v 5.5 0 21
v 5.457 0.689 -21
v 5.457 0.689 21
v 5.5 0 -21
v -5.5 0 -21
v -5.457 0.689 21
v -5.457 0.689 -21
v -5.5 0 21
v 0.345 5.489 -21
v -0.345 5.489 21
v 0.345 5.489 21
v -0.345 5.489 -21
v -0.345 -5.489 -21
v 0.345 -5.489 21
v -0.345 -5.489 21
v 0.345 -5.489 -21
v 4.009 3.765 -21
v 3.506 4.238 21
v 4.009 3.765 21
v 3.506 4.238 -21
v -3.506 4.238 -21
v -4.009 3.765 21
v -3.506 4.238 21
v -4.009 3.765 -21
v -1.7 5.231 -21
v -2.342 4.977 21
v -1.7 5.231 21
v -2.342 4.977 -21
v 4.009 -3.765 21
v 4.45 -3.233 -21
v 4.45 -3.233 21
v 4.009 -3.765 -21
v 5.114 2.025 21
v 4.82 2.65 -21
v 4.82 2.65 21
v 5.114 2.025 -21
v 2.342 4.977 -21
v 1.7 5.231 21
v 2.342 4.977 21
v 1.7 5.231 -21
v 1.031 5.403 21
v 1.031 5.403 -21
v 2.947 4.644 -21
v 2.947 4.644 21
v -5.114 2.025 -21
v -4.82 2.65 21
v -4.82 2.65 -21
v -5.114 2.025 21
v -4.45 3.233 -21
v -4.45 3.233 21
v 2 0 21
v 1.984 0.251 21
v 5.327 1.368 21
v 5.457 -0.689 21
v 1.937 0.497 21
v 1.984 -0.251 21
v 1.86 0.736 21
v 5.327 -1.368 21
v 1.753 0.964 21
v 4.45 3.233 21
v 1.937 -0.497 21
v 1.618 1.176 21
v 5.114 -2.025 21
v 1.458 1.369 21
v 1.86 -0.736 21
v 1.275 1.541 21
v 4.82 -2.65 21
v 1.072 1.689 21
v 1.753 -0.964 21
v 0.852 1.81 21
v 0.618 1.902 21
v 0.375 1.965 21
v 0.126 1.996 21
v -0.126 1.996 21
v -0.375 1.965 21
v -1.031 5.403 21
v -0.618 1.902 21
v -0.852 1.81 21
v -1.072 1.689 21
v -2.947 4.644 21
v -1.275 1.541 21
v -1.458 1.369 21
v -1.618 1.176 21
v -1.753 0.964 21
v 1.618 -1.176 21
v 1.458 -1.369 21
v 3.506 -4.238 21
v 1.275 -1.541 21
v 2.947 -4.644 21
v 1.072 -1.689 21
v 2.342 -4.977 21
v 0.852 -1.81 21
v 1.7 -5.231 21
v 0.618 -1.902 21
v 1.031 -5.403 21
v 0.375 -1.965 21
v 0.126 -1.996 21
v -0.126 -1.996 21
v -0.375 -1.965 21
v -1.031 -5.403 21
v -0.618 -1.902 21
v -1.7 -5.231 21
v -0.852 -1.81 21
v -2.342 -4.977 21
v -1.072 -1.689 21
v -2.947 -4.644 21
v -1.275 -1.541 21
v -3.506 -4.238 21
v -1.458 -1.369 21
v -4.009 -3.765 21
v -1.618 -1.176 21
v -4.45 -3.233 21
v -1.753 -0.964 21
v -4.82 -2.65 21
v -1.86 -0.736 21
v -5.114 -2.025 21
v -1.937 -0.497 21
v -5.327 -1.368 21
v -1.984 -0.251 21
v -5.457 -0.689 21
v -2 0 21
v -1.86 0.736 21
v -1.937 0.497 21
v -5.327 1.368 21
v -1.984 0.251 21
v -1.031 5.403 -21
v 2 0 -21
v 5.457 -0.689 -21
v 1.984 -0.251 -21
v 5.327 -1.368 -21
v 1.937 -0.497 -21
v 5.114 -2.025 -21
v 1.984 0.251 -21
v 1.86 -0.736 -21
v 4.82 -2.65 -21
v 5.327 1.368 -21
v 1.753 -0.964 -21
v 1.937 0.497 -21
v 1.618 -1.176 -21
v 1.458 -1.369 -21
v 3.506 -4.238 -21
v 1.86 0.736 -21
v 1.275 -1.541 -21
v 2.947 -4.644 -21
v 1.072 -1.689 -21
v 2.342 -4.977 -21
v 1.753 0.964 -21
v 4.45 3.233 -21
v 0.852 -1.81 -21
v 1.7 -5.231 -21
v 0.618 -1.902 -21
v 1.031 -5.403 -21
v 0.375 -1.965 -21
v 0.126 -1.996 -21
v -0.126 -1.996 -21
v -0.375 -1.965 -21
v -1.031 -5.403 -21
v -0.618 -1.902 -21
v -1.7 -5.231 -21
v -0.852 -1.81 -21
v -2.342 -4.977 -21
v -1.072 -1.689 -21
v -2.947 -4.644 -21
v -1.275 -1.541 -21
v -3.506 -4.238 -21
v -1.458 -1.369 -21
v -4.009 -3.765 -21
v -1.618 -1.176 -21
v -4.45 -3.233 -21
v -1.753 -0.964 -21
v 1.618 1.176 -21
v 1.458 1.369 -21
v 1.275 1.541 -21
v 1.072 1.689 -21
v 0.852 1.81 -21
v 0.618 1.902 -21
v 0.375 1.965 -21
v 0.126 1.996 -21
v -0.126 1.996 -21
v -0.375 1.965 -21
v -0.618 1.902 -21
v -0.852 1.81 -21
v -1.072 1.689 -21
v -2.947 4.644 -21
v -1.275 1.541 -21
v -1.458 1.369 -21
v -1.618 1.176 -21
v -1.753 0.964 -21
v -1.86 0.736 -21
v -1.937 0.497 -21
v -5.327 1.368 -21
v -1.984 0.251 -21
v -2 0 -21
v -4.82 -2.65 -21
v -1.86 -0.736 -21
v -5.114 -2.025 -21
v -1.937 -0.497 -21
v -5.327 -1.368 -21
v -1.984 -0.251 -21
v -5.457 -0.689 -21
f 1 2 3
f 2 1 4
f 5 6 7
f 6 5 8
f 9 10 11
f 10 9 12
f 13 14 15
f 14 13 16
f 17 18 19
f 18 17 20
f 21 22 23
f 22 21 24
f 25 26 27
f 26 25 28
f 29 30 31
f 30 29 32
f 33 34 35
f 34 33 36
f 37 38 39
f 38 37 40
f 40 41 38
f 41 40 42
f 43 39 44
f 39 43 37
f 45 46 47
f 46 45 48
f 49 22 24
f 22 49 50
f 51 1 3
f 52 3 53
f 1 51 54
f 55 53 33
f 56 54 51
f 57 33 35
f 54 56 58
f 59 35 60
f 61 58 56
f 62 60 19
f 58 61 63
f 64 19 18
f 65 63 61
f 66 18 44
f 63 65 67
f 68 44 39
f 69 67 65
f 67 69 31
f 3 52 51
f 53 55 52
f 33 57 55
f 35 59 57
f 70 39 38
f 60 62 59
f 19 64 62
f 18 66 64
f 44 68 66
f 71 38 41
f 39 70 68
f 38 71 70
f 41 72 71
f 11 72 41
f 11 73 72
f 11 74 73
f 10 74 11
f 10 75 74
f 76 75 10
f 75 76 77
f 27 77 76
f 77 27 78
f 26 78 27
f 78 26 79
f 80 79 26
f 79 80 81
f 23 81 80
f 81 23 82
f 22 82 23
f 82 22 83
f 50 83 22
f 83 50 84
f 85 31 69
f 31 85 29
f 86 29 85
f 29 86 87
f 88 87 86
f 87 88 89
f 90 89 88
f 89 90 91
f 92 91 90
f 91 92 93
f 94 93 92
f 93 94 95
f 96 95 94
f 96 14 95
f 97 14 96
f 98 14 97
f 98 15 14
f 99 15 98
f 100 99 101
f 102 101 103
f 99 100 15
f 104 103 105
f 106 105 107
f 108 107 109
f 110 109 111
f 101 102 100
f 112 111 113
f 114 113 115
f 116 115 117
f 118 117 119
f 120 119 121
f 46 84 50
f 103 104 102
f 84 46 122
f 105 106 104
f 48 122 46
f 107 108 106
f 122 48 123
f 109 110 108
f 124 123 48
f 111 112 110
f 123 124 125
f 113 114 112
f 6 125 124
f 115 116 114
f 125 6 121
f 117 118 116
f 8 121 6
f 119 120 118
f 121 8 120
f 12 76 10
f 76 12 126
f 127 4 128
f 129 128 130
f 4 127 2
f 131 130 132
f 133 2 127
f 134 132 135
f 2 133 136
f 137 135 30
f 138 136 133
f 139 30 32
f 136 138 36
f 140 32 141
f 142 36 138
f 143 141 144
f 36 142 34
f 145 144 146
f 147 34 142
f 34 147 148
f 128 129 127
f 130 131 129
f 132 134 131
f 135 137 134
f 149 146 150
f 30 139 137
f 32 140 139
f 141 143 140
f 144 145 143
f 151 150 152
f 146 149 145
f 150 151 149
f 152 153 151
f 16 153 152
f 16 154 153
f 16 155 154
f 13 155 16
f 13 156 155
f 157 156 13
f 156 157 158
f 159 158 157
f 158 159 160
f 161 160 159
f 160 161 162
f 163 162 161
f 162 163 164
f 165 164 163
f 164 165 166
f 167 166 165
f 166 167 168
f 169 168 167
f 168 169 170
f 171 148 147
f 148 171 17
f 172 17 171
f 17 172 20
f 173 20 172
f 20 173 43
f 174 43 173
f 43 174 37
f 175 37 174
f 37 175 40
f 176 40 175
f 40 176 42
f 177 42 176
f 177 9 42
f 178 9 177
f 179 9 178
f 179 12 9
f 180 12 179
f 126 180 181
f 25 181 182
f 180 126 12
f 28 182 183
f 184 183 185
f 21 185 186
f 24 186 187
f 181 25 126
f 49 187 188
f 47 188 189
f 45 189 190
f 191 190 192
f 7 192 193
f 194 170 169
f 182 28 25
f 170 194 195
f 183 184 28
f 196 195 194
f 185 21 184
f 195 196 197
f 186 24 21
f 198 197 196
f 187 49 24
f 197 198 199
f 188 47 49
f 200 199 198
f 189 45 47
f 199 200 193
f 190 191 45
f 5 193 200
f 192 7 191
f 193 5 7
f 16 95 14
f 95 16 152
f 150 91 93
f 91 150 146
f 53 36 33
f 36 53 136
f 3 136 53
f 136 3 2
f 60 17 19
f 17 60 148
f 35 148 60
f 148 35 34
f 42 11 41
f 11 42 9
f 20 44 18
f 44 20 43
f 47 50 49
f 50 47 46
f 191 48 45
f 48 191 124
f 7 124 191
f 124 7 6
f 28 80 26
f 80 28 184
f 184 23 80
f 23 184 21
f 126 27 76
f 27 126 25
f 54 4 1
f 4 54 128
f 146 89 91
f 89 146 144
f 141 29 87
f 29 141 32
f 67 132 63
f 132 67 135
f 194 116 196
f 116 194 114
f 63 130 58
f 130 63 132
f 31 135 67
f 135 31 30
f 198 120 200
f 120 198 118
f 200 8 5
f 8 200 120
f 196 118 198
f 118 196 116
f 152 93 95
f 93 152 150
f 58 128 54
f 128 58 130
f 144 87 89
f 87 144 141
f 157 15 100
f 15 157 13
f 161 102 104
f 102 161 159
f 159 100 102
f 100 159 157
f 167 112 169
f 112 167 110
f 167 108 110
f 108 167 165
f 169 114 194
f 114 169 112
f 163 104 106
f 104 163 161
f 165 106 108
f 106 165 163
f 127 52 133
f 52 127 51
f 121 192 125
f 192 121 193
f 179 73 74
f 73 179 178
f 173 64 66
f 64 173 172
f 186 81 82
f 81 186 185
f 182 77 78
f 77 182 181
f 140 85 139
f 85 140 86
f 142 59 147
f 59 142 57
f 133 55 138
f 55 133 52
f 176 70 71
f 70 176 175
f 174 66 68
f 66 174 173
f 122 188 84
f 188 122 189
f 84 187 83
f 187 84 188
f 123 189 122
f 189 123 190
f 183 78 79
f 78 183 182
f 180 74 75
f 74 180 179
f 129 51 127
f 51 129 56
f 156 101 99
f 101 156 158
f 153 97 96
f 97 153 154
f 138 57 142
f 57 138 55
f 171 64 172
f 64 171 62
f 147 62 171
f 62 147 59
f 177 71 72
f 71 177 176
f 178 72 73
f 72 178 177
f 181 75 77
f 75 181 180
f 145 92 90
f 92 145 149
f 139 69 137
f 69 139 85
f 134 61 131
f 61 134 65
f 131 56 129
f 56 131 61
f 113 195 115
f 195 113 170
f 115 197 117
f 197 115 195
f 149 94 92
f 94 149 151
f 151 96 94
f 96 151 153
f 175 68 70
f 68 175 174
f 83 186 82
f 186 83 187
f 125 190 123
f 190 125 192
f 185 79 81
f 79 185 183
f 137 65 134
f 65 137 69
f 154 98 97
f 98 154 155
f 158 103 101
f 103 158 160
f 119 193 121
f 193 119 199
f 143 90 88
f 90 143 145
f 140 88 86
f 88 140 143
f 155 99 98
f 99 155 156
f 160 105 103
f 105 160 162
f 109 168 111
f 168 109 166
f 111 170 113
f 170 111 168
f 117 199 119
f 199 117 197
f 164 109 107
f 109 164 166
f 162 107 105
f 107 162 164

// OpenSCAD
$fn = 50;


difference() {
	union() {
		translate(v = [0, 0, -21.0000000000]) {
			cylinder(h = 42, r = 5.5000000000);
		}
	}
	union() {
		translate(v = [0, 0, -100.0000000000]) {
			cylinder(h = 200, r = 2);
		}
	}
}
